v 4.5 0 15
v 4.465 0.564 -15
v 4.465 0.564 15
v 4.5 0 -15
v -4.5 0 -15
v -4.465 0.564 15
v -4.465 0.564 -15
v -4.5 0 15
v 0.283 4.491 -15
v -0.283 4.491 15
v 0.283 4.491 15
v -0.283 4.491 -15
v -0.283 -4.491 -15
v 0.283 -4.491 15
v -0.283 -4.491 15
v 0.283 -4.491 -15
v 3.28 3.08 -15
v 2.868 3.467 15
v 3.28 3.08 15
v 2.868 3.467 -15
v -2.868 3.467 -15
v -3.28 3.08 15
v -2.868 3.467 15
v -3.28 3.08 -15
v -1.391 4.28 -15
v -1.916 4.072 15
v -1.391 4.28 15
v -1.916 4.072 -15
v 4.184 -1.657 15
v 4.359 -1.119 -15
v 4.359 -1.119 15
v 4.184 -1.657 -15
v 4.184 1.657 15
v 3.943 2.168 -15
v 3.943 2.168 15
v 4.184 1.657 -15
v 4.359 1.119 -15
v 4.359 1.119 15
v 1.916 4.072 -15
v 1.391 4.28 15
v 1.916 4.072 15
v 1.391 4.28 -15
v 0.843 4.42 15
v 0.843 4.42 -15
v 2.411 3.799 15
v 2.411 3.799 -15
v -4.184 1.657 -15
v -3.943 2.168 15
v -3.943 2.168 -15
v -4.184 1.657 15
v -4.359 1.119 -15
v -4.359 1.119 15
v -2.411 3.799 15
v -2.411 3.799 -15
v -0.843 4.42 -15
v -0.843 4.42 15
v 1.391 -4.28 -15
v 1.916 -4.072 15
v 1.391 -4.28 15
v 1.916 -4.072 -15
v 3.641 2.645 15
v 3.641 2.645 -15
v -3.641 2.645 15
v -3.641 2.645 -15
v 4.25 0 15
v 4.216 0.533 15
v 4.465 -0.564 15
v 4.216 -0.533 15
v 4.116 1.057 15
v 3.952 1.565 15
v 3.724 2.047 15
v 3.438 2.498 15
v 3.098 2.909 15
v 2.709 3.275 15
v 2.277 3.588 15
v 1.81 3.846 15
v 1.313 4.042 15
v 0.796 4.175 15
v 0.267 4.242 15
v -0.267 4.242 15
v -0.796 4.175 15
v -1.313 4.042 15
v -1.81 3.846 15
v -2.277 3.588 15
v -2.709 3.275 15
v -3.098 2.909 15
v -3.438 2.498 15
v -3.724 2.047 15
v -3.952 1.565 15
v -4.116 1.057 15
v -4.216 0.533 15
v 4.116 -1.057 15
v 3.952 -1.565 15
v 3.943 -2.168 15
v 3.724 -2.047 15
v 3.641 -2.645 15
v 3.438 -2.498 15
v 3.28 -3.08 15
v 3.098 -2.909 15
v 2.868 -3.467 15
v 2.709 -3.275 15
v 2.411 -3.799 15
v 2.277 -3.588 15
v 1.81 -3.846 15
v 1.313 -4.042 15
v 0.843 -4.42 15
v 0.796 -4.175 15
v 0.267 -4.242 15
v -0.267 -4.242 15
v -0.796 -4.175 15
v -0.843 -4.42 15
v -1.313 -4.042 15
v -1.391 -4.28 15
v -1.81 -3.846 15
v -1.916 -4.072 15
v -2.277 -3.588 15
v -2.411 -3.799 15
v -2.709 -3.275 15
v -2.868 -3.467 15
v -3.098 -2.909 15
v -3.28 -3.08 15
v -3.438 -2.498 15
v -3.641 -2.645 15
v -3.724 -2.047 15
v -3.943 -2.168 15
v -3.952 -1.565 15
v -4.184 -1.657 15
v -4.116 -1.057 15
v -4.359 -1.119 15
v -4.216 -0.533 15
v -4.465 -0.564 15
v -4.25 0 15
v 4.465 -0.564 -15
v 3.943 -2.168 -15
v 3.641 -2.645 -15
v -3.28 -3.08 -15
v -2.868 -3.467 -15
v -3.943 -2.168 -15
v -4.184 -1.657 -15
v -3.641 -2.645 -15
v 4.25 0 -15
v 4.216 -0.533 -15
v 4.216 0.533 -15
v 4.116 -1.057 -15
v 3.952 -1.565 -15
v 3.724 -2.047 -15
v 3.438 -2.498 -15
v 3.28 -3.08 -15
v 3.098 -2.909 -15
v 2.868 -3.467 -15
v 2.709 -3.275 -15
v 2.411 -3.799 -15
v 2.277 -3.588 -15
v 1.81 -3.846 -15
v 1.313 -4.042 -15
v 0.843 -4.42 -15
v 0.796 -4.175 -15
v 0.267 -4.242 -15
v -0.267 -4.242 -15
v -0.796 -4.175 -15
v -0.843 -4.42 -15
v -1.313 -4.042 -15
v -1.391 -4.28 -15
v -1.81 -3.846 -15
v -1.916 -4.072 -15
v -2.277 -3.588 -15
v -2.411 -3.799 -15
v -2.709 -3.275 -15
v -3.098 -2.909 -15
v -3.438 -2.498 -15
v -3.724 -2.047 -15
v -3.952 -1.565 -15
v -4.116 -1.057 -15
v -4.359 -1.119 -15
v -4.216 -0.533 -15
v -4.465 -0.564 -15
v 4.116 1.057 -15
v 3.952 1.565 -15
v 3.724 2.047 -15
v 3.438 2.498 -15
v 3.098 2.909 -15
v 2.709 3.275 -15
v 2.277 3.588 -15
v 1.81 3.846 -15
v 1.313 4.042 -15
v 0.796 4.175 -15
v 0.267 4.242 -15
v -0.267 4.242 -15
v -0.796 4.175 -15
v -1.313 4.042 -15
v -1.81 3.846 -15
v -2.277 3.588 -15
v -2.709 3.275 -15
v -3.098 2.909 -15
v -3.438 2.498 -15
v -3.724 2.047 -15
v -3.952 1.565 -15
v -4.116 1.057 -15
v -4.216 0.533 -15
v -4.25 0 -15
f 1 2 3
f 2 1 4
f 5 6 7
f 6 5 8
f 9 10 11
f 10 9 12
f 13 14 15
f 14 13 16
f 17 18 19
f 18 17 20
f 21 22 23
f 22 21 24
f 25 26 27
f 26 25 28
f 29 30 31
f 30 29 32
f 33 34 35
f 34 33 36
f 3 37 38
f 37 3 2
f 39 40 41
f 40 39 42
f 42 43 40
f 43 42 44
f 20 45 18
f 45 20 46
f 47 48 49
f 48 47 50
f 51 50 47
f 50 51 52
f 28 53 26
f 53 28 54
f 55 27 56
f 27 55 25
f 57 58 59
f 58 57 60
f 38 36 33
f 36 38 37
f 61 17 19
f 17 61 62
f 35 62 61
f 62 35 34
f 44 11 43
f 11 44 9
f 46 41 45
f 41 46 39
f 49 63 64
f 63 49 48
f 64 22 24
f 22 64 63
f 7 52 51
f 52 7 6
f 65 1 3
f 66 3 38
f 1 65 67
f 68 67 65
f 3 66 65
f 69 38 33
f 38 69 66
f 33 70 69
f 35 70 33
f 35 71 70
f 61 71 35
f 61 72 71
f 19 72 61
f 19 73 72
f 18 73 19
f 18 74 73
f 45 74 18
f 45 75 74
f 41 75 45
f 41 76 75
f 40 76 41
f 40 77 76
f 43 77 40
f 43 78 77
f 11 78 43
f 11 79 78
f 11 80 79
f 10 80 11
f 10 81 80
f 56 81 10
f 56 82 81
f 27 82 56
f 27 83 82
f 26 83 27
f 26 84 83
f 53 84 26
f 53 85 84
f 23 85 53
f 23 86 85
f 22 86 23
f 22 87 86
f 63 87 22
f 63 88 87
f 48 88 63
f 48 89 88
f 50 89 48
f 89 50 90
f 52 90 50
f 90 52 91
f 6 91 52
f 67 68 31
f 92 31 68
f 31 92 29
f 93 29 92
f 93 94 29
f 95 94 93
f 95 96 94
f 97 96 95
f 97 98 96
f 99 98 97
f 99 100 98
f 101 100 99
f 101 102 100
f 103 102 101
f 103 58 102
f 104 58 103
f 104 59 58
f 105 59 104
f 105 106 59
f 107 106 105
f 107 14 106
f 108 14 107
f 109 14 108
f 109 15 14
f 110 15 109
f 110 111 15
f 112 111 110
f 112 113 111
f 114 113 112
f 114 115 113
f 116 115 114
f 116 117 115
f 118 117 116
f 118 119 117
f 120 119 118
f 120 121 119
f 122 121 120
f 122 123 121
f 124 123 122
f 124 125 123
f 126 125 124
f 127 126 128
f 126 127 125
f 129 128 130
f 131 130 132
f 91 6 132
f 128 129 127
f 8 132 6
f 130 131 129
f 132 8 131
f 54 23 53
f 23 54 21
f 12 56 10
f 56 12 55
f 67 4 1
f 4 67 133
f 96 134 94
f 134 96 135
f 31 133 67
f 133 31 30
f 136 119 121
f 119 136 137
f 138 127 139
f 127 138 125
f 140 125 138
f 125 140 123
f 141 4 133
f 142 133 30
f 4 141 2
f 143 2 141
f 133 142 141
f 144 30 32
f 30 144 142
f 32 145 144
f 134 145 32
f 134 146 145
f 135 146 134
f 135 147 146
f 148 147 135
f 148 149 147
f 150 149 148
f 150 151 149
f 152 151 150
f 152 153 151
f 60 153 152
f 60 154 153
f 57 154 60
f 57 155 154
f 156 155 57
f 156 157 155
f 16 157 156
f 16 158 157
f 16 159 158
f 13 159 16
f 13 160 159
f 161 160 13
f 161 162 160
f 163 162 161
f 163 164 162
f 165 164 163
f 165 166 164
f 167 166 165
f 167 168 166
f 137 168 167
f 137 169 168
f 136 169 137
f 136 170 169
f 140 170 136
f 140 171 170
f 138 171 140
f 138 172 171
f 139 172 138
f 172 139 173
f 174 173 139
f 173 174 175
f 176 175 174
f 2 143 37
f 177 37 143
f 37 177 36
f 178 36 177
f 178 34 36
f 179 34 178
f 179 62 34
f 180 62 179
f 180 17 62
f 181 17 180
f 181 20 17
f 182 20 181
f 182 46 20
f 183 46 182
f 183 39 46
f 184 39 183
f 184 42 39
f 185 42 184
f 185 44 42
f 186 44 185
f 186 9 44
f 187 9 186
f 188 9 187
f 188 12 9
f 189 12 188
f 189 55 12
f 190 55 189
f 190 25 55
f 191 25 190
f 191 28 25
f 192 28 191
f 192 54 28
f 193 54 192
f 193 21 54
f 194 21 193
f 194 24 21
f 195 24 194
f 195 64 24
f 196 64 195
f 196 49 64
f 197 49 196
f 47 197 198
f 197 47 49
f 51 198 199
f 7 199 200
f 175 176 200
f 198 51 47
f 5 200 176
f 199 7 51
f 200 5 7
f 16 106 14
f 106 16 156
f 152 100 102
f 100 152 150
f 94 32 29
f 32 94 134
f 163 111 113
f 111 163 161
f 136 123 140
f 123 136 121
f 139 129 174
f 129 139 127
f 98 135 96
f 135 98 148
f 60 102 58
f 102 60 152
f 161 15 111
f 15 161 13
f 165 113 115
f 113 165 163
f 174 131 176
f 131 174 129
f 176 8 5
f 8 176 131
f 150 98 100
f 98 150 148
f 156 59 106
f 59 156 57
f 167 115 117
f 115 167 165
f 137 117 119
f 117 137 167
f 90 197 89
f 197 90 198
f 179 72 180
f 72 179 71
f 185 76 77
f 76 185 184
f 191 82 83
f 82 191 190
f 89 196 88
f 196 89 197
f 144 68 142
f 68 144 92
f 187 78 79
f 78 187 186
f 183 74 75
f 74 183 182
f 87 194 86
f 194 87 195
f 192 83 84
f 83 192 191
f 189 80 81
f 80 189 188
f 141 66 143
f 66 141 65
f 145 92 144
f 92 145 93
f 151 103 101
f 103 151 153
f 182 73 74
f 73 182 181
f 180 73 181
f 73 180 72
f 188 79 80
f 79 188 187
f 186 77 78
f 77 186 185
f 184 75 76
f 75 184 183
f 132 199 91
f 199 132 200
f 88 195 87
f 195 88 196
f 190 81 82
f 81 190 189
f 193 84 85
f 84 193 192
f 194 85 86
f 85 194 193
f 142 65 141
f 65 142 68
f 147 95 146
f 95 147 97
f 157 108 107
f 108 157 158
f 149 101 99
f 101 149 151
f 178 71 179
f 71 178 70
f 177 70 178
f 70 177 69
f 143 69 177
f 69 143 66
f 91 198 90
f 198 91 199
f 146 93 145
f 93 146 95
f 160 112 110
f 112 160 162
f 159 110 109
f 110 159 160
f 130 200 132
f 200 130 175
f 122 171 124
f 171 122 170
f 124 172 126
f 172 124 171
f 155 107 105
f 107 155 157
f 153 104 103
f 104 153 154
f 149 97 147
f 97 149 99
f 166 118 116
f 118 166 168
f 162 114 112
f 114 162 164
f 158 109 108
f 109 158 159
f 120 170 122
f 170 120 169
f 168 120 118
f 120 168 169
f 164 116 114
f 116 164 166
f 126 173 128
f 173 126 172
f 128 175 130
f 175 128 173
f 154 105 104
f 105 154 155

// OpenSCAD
$fn = 50;


difference() {
	union() {
		translate(v = [0, 0, -15.0000000000]) {
			cylinder(h = 30, r = 4.5000000000);
		}
	}
	union() {
		translate(v = [0, 0, -100.0000000000]) {
			cylinder(h = 200, r = 4.2500000000);
		}
	}
}
